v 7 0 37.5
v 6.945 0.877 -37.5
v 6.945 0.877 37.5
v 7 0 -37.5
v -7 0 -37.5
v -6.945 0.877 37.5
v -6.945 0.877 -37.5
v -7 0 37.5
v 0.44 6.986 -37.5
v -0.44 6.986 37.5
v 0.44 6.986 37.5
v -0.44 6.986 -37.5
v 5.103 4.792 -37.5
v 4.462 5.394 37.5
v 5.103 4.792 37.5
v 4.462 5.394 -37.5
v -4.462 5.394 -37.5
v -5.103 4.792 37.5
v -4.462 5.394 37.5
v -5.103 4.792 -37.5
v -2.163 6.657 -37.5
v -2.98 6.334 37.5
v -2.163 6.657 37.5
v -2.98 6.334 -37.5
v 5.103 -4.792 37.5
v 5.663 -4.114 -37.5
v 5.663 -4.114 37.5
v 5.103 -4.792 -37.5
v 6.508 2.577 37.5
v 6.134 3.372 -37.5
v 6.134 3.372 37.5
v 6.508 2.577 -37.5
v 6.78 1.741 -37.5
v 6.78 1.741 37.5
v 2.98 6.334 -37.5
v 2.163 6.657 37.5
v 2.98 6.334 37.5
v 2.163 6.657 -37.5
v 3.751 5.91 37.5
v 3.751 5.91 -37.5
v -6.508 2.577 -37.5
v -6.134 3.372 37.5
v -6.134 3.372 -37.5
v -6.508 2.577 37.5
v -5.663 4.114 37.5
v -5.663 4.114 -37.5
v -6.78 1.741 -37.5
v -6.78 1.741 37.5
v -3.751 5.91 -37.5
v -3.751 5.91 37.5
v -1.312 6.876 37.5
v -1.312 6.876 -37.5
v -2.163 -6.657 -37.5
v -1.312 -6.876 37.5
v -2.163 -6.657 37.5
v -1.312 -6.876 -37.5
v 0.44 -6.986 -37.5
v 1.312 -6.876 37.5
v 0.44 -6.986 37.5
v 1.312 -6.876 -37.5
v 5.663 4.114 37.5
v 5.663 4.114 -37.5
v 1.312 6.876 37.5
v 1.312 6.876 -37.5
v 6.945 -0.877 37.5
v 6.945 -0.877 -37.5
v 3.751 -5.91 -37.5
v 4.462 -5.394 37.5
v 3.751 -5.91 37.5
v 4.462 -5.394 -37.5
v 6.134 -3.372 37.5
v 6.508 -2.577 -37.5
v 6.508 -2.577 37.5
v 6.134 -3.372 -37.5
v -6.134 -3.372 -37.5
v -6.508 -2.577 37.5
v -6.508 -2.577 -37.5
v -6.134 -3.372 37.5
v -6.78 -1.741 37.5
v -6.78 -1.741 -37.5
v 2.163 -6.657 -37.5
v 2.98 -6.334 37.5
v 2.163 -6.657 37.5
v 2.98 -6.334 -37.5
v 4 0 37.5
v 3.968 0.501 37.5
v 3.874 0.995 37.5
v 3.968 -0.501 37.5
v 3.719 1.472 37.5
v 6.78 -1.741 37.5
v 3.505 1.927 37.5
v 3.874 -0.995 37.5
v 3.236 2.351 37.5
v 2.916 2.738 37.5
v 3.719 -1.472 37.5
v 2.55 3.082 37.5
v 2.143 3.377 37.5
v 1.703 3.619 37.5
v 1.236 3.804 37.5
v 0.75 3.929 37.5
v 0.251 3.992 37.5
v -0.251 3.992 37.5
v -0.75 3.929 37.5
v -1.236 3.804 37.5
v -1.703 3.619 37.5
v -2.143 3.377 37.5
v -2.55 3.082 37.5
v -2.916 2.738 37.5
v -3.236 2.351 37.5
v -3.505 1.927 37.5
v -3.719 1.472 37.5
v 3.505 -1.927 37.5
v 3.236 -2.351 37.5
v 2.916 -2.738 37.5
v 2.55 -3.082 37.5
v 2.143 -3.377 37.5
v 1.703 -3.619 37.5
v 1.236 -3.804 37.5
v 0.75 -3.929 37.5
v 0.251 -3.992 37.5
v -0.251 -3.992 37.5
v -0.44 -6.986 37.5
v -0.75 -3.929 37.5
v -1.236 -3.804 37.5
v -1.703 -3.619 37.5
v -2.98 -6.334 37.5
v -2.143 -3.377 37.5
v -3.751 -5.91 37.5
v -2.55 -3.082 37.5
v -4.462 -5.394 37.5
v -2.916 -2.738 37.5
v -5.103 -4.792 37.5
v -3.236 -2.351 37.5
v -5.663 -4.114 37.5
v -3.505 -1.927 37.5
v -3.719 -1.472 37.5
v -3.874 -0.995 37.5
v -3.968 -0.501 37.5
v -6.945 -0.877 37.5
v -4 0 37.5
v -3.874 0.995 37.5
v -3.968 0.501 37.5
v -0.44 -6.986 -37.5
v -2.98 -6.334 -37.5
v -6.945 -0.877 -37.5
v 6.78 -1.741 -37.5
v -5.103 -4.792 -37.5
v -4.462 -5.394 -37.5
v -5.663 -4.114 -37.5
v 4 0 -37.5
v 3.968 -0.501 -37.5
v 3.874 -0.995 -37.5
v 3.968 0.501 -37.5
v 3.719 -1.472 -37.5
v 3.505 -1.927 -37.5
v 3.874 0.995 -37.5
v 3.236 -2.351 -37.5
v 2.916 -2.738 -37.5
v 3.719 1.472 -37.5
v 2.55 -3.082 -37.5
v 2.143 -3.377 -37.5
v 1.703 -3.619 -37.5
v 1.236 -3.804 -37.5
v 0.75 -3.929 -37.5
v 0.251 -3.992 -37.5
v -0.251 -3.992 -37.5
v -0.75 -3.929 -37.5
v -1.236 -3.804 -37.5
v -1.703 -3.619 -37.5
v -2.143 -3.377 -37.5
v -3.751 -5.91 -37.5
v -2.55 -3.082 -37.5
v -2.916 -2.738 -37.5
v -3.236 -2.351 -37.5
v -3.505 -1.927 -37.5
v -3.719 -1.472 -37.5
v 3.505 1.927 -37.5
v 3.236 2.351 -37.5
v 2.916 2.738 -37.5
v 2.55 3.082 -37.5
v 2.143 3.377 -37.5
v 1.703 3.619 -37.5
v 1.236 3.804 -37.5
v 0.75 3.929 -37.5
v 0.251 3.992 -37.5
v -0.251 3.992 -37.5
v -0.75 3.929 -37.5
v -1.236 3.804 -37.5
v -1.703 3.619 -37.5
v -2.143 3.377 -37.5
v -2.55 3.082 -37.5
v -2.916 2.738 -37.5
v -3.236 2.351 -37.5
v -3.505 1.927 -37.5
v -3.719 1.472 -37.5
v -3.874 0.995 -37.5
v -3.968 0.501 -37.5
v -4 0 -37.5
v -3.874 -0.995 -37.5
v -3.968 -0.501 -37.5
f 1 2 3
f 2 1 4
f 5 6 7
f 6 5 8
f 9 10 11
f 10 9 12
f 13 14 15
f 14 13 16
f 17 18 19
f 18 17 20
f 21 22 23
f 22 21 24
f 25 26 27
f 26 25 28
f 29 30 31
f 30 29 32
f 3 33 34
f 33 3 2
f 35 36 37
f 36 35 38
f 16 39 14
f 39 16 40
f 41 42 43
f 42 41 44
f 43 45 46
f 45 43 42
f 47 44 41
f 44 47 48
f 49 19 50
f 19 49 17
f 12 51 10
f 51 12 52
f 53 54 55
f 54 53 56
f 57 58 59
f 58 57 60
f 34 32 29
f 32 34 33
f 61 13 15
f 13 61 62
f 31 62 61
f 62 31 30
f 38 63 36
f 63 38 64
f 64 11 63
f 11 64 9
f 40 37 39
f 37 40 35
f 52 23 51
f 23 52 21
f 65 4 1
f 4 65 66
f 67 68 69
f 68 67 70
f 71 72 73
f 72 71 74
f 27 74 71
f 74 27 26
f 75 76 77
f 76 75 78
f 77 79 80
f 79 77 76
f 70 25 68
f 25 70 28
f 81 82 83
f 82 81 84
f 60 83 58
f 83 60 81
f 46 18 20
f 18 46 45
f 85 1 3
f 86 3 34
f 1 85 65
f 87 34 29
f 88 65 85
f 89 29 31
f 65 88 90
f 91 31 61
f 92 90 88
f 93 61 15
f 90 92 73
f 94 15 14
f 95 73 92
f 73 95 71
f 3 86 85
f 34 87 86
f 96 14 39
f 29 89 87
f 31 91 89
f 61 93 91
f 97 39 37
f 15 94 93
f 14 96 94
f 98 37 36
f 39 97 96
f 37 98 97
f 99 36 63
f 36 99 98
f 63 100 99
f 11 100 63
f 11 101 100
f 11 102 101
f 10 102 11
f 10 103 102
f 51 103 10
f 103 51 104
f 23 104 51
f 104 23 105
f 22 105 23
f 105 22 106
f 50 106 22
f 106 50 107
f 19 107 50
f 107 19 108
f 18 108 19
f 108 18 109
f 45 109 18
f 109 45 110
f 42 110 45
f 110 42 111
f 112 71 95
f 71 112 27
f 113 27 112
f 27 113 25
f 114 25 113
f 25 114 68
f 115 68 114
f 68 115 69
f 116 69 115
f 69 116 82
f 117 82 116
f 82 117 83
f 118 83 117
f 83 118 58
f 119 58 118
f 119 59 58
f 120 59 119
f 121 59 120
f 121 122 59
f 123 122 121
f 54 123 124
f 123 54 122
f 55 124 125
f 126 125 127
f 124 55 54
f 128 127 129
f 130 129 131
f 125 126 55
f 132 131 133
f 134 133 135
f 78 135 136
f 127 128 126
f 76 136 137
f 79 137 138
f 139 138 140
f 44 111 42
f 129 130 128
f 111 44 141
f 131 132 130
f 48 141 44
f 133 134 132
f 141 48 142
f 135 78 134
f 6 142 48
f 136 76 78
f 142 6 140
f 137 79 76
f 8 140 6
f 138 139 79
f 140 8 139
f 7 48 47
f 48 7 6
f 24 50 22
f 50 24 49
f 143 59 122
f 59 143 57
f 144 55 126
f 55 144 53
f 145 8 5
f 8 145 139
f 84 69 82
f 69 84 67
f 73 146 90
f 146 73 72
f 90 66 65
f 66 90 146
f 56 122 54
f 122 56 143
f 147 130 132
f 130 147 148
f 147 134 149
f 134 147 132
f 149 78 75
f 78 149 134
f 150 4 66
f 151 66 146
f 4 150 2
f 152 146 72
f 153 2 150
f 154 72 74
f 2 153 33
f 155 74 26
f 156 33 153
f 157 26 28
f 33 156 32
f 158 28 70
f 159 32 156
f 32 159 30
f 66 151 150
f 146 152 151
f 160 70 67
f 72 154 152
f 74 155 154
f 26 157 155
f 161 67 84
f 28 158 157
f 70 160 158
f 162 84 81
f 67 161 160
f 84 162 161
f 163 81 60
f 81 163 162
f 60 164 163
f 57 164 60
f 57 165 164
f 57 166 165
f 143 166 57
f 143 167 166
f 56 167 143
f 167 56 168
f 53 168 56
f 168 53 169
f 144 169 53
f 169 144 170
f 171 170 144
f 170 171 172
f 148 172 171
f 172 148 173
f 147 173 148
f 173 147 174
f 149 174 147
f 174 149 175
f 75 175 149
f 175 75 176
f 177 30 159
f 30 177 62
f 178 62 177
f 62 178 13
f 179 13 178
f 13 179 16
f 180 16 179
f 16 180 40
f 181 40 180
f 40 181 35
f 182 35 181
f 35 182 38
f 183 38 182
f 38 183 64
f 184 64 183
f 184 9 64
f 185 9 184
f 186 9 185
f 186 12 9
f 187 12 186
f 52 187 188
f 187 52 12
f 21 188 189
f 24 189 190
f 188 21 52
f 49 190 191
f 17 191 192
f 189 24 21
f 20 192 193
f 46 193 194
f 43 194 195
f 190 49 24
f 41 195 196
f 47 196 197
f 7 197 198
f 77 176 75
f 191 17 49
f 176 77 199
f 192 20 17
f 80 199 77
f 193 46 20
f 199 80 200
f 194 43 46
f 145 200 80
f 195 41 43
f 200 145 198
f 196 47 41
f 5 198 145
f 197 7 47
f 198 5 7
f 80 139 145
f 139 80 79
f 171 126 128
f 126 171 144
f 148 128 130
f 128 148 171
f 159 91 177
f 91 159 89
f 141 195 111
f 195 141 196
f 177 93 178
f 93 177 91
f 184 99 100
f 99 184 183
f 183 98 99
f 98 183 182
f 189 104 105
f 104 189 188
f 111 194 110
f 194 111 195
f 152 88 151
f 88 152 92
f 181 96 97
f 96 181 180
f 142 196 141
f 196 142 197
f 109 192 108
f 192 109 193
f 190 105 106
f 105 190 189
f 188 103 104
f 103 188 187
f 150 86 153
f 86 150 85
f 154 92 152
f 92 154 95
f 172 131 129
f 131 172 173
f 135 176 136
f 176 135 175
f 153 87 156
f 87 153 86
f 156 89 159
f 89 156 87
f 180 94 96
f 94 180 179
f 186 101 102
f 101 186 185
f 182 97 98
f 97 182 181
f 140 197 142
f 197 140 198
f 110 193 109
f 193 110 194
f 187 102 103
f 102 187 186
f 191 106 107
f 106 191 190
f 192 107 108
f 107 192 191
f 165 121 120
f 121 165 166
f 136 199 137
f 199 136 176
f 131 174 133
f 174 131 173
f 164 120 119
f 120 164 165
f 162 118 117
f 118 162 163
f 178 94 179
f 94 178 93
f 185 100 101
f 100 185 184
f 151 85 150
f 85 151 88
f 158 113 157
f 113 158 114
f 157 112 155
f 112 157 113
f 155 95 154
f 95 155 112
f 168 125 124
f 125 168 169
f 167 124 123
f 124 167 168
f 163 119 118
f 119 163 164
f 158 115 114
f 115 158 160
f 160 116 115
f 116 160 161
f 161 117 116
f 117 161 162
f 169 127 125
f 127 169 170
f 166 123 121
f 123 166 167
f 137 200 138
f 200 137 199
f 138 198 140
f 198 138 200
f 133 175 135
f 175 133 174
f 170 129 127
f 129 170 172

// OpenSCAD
$fn = 50;


difference() {
	union() {
		translate(v = [0, 0, -37.5000000000]) {
			cylinder(h = 75, r = 7.0000000000);
		}
	}
	union() {
		translate(v = [0, 0, -100.0000000000]) {
			cylinder(h = 200, r = 4.0000000000);
		}
	}
}
